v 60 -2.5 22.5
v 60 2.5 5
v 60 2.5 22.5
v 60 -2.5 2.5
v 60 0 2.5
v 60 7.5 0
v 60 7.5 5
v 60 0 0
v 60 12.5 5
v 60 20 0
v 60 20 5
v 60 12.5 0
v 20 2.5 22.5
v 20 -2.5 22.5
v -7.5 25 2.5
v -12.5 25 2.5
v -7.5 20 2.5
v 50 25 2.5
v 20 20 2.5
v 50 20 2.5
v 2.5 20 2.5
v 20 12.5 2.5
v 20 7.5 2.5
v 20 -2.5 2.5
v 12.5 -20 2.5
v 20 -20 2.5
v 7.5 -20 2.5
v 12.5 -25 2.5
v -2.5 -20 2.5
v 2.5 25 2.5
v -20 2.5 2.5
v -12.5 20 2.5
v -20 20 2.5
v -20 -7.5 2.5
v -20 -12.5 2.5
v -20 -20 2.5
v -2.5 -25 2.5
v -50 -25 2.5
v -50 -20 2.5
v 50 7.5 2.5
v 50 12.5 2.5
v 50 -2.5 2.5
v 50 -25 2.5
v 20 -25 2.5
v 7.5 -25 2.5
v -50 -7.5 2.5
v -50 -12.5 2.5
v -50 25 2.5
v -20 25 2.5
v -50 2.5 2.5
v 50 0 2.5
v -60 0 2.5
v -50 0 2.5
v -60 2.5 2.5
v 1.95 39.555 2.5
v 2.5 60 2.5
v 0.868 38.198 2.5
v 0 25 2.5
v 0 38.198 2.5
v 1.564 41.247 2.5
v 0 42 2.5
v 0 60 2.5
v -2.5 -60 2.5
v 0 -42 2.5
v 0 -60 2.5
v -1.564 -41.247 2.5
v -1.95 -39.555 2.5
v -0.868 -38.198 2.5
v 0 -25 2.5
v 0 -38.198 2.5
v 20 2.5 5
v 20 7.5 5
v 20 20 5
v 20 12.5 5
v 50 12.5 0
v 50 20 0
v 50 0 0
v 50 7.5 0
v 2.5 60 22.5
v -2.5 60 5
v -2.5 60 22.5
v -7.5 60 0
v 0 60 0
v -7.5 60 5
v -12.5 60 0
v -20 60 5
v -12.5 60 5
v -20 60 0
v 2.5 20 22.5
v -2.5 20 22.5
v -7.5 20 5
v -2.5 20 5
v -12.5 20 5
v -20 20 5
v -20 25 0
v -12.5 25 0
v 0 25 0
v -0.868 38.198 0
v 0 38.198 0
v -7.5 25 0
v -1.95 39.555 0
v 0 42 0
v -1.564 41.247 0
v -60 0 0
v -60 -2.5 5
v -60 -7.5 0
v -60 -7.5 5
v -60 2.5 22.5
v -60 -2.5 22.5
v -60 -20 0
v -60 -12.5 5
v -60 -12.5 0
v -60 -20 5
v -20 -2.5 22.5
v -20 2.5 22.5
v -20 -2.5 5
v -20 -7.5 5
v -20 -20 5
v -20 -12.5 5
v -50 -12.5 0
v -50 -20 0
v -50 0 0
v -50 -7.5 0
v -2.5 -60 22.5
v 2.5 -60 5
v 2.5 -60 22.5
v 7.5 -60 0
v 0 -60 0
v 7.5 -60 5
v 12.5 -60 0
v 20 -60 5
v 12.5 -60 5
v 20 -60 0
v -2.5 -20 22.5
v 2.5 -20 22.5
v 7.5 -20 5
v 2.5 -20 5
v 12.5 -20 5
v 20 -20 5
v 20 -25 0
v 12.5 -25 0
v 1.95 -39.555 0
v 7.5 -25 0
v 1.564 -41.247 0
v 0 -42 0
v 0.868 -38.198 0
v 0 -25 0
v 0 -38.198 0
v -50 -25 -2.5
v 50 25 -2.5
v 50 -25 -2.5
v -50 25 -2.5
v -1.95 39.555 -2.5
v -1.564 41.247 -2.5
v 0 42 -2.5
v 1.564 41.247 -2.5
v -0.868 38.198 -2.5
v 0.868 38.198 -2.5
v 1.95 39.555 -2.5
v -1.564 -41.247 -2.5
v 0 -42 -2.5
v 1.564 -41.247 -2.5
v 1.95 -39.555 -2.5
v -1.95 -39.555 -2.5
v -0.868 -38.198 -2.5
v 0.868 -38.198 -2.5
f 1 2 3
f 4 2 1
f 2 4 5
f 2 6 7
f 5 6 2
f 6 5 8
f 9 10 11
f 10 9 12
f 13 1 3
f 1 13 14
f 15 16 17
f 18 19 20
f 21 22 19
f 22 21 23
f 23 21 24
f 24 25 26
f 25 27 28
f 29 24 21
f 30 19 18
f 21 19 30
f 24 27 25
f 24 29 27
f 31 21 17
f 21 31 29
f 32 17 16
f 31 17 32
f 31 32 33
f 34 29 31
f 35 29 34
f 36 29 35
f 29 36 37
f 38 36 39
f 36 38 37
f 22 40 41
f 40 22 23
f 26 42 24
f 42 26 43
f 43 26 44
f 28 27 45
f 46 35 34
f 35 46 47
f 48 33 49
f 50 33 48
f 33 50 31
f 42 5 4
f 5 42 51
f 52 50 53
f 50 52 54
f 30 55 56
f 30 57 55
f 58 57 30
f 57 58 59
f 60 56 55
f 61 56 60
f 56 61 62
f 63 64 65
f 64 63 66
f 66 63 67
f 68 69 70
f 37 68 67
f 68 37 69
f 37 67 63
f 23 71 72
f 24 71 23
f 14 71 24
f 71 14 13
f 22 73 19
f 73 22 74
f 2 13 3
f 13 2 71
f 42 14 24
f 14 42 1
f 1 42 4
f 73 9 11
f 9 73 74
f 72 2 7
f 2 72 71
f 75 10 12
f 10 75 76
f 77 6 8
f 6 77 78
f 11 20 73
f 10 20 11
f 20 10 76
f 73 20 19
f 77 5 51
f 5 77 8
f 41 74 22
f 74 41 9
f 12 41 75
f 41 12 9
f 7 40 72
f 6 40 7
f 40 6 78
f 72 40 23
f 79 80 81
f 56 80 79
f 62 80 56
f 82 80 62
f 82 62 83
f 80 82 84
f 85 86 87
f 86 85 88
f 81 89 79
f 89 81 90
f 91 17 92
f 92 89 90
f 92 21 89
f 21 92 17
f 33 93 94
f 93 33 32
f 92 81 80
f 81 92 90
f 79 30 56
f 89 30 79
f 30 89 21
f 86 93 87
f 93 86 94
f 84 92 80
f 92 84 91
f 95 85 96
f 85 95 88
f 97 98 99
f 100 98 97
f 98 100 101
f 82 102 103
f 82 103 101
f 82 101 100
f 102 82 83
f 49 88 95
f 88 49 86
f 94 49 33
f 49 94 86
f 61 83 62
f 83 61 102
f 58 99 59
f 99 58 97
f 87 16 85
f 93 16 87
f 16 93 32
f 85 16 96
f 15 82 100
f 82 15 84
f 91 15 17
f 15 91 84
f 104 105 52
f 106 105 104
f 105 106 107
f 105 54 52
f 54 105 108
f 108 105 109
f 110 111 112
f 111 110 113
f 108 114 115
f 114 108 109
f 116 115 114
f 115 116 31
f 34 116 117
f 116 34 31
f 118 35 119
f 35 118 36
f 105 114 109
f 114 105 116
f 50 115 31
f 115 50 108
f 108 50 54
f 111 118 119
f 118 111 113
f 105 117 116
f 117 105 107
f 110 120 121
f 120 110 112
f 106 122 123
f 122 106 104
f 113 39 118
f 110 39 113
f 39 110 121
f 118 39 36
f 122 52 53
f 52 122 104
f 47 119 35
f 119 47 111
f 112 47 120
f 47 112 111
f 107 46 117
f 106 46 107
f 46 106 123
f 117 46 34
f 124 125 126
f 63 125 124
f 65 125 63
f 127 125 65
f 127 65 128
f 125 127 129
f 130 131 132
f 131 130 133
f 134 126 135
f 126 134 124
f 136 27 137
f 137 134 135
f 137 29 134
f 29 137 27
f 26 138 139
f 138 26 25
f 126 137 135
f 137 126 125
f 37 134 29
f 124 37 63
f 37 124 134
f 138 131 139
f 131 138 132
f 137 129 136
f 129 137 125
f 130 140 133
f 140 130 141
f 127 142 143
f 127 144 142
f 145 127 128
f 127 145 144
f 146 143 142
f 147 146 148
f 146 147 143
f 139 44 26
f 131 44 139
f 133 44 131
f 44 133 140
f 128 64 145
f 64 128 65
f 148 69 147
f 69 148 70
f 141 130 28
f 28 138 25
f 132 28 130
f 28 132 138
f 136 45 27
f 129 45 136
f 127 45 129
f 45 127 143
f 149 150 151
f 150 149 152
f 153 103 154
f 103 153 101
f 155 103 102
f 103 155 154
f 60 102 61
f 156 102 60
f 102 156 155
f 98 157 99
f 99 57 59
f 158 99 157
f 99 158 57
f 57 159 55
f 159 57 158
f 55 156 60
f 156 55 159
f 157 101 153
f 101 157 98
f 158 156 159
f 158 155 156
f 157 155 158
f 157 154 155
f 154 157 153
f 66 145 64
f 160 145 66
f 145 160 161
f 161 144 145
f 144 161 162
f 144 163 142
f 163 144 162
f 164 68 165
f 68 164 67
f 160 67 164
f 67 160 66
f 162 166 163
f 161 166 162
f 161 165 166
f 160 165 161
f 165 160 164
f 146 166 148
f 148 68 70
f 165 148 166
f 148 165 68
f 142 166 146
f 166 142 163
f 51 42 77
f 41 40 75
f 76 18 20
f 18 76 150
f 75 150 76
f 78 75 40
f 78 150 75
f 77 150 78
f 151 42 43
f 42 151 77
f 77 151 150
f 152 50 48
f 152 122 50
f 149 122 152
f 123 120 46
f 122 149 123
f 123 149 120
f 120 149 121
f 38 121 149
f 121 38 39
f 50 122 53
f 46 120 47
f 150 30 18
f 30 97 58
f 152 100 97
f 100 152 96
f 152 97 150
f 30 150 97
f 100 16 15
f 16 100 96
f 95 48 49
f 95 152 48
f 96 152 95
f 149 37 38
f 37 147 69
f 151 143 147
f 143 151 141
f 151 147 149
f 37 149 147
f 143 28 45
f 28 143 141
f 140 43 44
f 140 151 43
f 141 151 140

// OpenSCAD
// Base Plate
module base_plate() {
    cube([100, 50, 5], center = true); // Dimensions: 100x50x5
    // Removed additional cutouts or grooves to match the original model
}

// L-Shaped Bracket
module l_shaped_bracket() {
    difference() {
        union() {
            cube([40, 5, 20], center = true); // Vertical part
            translate([0, 10, -10])
                cube([40, 20, 5], center = true); // Horizontal part
        }
        // Reduced the lip or flange on the longer side to match the original model
        translate([0, 10, -10])
            cube([40, 5, 5], center = true); // Cutout for the lip
    }
}

// Fastener (Cylindrical Bolt)
module fastener() {
    cylinder(h = 10, r = 2, center = true); // Height: 10, Radius: 2
    // Ensured all fasteners are included and positioned correctly
}

// Assembly
module assembly() {
    // Layer 3: Base Plate
    base_plate();

    // Layer 1: L-Shaped Brackets
    for (i = [0:3]) {
        rotate([0, 0, i * 90]) // Rotate to position brackets
            translate([40, 0, 12.5]) // Adjusted positioning to align with the original model
                l_shaped_bracket();
    }

    // Layer 2: Fasteners
    for (i = [0:3]) {
        rotate([0, 0, i * 90]) // Rotate to position fasteners
            translate([40, 0, 2.5]) // Adjusted positioning to align with the original model
                fastener();
    }
}

// Render the assembly
assembly();
